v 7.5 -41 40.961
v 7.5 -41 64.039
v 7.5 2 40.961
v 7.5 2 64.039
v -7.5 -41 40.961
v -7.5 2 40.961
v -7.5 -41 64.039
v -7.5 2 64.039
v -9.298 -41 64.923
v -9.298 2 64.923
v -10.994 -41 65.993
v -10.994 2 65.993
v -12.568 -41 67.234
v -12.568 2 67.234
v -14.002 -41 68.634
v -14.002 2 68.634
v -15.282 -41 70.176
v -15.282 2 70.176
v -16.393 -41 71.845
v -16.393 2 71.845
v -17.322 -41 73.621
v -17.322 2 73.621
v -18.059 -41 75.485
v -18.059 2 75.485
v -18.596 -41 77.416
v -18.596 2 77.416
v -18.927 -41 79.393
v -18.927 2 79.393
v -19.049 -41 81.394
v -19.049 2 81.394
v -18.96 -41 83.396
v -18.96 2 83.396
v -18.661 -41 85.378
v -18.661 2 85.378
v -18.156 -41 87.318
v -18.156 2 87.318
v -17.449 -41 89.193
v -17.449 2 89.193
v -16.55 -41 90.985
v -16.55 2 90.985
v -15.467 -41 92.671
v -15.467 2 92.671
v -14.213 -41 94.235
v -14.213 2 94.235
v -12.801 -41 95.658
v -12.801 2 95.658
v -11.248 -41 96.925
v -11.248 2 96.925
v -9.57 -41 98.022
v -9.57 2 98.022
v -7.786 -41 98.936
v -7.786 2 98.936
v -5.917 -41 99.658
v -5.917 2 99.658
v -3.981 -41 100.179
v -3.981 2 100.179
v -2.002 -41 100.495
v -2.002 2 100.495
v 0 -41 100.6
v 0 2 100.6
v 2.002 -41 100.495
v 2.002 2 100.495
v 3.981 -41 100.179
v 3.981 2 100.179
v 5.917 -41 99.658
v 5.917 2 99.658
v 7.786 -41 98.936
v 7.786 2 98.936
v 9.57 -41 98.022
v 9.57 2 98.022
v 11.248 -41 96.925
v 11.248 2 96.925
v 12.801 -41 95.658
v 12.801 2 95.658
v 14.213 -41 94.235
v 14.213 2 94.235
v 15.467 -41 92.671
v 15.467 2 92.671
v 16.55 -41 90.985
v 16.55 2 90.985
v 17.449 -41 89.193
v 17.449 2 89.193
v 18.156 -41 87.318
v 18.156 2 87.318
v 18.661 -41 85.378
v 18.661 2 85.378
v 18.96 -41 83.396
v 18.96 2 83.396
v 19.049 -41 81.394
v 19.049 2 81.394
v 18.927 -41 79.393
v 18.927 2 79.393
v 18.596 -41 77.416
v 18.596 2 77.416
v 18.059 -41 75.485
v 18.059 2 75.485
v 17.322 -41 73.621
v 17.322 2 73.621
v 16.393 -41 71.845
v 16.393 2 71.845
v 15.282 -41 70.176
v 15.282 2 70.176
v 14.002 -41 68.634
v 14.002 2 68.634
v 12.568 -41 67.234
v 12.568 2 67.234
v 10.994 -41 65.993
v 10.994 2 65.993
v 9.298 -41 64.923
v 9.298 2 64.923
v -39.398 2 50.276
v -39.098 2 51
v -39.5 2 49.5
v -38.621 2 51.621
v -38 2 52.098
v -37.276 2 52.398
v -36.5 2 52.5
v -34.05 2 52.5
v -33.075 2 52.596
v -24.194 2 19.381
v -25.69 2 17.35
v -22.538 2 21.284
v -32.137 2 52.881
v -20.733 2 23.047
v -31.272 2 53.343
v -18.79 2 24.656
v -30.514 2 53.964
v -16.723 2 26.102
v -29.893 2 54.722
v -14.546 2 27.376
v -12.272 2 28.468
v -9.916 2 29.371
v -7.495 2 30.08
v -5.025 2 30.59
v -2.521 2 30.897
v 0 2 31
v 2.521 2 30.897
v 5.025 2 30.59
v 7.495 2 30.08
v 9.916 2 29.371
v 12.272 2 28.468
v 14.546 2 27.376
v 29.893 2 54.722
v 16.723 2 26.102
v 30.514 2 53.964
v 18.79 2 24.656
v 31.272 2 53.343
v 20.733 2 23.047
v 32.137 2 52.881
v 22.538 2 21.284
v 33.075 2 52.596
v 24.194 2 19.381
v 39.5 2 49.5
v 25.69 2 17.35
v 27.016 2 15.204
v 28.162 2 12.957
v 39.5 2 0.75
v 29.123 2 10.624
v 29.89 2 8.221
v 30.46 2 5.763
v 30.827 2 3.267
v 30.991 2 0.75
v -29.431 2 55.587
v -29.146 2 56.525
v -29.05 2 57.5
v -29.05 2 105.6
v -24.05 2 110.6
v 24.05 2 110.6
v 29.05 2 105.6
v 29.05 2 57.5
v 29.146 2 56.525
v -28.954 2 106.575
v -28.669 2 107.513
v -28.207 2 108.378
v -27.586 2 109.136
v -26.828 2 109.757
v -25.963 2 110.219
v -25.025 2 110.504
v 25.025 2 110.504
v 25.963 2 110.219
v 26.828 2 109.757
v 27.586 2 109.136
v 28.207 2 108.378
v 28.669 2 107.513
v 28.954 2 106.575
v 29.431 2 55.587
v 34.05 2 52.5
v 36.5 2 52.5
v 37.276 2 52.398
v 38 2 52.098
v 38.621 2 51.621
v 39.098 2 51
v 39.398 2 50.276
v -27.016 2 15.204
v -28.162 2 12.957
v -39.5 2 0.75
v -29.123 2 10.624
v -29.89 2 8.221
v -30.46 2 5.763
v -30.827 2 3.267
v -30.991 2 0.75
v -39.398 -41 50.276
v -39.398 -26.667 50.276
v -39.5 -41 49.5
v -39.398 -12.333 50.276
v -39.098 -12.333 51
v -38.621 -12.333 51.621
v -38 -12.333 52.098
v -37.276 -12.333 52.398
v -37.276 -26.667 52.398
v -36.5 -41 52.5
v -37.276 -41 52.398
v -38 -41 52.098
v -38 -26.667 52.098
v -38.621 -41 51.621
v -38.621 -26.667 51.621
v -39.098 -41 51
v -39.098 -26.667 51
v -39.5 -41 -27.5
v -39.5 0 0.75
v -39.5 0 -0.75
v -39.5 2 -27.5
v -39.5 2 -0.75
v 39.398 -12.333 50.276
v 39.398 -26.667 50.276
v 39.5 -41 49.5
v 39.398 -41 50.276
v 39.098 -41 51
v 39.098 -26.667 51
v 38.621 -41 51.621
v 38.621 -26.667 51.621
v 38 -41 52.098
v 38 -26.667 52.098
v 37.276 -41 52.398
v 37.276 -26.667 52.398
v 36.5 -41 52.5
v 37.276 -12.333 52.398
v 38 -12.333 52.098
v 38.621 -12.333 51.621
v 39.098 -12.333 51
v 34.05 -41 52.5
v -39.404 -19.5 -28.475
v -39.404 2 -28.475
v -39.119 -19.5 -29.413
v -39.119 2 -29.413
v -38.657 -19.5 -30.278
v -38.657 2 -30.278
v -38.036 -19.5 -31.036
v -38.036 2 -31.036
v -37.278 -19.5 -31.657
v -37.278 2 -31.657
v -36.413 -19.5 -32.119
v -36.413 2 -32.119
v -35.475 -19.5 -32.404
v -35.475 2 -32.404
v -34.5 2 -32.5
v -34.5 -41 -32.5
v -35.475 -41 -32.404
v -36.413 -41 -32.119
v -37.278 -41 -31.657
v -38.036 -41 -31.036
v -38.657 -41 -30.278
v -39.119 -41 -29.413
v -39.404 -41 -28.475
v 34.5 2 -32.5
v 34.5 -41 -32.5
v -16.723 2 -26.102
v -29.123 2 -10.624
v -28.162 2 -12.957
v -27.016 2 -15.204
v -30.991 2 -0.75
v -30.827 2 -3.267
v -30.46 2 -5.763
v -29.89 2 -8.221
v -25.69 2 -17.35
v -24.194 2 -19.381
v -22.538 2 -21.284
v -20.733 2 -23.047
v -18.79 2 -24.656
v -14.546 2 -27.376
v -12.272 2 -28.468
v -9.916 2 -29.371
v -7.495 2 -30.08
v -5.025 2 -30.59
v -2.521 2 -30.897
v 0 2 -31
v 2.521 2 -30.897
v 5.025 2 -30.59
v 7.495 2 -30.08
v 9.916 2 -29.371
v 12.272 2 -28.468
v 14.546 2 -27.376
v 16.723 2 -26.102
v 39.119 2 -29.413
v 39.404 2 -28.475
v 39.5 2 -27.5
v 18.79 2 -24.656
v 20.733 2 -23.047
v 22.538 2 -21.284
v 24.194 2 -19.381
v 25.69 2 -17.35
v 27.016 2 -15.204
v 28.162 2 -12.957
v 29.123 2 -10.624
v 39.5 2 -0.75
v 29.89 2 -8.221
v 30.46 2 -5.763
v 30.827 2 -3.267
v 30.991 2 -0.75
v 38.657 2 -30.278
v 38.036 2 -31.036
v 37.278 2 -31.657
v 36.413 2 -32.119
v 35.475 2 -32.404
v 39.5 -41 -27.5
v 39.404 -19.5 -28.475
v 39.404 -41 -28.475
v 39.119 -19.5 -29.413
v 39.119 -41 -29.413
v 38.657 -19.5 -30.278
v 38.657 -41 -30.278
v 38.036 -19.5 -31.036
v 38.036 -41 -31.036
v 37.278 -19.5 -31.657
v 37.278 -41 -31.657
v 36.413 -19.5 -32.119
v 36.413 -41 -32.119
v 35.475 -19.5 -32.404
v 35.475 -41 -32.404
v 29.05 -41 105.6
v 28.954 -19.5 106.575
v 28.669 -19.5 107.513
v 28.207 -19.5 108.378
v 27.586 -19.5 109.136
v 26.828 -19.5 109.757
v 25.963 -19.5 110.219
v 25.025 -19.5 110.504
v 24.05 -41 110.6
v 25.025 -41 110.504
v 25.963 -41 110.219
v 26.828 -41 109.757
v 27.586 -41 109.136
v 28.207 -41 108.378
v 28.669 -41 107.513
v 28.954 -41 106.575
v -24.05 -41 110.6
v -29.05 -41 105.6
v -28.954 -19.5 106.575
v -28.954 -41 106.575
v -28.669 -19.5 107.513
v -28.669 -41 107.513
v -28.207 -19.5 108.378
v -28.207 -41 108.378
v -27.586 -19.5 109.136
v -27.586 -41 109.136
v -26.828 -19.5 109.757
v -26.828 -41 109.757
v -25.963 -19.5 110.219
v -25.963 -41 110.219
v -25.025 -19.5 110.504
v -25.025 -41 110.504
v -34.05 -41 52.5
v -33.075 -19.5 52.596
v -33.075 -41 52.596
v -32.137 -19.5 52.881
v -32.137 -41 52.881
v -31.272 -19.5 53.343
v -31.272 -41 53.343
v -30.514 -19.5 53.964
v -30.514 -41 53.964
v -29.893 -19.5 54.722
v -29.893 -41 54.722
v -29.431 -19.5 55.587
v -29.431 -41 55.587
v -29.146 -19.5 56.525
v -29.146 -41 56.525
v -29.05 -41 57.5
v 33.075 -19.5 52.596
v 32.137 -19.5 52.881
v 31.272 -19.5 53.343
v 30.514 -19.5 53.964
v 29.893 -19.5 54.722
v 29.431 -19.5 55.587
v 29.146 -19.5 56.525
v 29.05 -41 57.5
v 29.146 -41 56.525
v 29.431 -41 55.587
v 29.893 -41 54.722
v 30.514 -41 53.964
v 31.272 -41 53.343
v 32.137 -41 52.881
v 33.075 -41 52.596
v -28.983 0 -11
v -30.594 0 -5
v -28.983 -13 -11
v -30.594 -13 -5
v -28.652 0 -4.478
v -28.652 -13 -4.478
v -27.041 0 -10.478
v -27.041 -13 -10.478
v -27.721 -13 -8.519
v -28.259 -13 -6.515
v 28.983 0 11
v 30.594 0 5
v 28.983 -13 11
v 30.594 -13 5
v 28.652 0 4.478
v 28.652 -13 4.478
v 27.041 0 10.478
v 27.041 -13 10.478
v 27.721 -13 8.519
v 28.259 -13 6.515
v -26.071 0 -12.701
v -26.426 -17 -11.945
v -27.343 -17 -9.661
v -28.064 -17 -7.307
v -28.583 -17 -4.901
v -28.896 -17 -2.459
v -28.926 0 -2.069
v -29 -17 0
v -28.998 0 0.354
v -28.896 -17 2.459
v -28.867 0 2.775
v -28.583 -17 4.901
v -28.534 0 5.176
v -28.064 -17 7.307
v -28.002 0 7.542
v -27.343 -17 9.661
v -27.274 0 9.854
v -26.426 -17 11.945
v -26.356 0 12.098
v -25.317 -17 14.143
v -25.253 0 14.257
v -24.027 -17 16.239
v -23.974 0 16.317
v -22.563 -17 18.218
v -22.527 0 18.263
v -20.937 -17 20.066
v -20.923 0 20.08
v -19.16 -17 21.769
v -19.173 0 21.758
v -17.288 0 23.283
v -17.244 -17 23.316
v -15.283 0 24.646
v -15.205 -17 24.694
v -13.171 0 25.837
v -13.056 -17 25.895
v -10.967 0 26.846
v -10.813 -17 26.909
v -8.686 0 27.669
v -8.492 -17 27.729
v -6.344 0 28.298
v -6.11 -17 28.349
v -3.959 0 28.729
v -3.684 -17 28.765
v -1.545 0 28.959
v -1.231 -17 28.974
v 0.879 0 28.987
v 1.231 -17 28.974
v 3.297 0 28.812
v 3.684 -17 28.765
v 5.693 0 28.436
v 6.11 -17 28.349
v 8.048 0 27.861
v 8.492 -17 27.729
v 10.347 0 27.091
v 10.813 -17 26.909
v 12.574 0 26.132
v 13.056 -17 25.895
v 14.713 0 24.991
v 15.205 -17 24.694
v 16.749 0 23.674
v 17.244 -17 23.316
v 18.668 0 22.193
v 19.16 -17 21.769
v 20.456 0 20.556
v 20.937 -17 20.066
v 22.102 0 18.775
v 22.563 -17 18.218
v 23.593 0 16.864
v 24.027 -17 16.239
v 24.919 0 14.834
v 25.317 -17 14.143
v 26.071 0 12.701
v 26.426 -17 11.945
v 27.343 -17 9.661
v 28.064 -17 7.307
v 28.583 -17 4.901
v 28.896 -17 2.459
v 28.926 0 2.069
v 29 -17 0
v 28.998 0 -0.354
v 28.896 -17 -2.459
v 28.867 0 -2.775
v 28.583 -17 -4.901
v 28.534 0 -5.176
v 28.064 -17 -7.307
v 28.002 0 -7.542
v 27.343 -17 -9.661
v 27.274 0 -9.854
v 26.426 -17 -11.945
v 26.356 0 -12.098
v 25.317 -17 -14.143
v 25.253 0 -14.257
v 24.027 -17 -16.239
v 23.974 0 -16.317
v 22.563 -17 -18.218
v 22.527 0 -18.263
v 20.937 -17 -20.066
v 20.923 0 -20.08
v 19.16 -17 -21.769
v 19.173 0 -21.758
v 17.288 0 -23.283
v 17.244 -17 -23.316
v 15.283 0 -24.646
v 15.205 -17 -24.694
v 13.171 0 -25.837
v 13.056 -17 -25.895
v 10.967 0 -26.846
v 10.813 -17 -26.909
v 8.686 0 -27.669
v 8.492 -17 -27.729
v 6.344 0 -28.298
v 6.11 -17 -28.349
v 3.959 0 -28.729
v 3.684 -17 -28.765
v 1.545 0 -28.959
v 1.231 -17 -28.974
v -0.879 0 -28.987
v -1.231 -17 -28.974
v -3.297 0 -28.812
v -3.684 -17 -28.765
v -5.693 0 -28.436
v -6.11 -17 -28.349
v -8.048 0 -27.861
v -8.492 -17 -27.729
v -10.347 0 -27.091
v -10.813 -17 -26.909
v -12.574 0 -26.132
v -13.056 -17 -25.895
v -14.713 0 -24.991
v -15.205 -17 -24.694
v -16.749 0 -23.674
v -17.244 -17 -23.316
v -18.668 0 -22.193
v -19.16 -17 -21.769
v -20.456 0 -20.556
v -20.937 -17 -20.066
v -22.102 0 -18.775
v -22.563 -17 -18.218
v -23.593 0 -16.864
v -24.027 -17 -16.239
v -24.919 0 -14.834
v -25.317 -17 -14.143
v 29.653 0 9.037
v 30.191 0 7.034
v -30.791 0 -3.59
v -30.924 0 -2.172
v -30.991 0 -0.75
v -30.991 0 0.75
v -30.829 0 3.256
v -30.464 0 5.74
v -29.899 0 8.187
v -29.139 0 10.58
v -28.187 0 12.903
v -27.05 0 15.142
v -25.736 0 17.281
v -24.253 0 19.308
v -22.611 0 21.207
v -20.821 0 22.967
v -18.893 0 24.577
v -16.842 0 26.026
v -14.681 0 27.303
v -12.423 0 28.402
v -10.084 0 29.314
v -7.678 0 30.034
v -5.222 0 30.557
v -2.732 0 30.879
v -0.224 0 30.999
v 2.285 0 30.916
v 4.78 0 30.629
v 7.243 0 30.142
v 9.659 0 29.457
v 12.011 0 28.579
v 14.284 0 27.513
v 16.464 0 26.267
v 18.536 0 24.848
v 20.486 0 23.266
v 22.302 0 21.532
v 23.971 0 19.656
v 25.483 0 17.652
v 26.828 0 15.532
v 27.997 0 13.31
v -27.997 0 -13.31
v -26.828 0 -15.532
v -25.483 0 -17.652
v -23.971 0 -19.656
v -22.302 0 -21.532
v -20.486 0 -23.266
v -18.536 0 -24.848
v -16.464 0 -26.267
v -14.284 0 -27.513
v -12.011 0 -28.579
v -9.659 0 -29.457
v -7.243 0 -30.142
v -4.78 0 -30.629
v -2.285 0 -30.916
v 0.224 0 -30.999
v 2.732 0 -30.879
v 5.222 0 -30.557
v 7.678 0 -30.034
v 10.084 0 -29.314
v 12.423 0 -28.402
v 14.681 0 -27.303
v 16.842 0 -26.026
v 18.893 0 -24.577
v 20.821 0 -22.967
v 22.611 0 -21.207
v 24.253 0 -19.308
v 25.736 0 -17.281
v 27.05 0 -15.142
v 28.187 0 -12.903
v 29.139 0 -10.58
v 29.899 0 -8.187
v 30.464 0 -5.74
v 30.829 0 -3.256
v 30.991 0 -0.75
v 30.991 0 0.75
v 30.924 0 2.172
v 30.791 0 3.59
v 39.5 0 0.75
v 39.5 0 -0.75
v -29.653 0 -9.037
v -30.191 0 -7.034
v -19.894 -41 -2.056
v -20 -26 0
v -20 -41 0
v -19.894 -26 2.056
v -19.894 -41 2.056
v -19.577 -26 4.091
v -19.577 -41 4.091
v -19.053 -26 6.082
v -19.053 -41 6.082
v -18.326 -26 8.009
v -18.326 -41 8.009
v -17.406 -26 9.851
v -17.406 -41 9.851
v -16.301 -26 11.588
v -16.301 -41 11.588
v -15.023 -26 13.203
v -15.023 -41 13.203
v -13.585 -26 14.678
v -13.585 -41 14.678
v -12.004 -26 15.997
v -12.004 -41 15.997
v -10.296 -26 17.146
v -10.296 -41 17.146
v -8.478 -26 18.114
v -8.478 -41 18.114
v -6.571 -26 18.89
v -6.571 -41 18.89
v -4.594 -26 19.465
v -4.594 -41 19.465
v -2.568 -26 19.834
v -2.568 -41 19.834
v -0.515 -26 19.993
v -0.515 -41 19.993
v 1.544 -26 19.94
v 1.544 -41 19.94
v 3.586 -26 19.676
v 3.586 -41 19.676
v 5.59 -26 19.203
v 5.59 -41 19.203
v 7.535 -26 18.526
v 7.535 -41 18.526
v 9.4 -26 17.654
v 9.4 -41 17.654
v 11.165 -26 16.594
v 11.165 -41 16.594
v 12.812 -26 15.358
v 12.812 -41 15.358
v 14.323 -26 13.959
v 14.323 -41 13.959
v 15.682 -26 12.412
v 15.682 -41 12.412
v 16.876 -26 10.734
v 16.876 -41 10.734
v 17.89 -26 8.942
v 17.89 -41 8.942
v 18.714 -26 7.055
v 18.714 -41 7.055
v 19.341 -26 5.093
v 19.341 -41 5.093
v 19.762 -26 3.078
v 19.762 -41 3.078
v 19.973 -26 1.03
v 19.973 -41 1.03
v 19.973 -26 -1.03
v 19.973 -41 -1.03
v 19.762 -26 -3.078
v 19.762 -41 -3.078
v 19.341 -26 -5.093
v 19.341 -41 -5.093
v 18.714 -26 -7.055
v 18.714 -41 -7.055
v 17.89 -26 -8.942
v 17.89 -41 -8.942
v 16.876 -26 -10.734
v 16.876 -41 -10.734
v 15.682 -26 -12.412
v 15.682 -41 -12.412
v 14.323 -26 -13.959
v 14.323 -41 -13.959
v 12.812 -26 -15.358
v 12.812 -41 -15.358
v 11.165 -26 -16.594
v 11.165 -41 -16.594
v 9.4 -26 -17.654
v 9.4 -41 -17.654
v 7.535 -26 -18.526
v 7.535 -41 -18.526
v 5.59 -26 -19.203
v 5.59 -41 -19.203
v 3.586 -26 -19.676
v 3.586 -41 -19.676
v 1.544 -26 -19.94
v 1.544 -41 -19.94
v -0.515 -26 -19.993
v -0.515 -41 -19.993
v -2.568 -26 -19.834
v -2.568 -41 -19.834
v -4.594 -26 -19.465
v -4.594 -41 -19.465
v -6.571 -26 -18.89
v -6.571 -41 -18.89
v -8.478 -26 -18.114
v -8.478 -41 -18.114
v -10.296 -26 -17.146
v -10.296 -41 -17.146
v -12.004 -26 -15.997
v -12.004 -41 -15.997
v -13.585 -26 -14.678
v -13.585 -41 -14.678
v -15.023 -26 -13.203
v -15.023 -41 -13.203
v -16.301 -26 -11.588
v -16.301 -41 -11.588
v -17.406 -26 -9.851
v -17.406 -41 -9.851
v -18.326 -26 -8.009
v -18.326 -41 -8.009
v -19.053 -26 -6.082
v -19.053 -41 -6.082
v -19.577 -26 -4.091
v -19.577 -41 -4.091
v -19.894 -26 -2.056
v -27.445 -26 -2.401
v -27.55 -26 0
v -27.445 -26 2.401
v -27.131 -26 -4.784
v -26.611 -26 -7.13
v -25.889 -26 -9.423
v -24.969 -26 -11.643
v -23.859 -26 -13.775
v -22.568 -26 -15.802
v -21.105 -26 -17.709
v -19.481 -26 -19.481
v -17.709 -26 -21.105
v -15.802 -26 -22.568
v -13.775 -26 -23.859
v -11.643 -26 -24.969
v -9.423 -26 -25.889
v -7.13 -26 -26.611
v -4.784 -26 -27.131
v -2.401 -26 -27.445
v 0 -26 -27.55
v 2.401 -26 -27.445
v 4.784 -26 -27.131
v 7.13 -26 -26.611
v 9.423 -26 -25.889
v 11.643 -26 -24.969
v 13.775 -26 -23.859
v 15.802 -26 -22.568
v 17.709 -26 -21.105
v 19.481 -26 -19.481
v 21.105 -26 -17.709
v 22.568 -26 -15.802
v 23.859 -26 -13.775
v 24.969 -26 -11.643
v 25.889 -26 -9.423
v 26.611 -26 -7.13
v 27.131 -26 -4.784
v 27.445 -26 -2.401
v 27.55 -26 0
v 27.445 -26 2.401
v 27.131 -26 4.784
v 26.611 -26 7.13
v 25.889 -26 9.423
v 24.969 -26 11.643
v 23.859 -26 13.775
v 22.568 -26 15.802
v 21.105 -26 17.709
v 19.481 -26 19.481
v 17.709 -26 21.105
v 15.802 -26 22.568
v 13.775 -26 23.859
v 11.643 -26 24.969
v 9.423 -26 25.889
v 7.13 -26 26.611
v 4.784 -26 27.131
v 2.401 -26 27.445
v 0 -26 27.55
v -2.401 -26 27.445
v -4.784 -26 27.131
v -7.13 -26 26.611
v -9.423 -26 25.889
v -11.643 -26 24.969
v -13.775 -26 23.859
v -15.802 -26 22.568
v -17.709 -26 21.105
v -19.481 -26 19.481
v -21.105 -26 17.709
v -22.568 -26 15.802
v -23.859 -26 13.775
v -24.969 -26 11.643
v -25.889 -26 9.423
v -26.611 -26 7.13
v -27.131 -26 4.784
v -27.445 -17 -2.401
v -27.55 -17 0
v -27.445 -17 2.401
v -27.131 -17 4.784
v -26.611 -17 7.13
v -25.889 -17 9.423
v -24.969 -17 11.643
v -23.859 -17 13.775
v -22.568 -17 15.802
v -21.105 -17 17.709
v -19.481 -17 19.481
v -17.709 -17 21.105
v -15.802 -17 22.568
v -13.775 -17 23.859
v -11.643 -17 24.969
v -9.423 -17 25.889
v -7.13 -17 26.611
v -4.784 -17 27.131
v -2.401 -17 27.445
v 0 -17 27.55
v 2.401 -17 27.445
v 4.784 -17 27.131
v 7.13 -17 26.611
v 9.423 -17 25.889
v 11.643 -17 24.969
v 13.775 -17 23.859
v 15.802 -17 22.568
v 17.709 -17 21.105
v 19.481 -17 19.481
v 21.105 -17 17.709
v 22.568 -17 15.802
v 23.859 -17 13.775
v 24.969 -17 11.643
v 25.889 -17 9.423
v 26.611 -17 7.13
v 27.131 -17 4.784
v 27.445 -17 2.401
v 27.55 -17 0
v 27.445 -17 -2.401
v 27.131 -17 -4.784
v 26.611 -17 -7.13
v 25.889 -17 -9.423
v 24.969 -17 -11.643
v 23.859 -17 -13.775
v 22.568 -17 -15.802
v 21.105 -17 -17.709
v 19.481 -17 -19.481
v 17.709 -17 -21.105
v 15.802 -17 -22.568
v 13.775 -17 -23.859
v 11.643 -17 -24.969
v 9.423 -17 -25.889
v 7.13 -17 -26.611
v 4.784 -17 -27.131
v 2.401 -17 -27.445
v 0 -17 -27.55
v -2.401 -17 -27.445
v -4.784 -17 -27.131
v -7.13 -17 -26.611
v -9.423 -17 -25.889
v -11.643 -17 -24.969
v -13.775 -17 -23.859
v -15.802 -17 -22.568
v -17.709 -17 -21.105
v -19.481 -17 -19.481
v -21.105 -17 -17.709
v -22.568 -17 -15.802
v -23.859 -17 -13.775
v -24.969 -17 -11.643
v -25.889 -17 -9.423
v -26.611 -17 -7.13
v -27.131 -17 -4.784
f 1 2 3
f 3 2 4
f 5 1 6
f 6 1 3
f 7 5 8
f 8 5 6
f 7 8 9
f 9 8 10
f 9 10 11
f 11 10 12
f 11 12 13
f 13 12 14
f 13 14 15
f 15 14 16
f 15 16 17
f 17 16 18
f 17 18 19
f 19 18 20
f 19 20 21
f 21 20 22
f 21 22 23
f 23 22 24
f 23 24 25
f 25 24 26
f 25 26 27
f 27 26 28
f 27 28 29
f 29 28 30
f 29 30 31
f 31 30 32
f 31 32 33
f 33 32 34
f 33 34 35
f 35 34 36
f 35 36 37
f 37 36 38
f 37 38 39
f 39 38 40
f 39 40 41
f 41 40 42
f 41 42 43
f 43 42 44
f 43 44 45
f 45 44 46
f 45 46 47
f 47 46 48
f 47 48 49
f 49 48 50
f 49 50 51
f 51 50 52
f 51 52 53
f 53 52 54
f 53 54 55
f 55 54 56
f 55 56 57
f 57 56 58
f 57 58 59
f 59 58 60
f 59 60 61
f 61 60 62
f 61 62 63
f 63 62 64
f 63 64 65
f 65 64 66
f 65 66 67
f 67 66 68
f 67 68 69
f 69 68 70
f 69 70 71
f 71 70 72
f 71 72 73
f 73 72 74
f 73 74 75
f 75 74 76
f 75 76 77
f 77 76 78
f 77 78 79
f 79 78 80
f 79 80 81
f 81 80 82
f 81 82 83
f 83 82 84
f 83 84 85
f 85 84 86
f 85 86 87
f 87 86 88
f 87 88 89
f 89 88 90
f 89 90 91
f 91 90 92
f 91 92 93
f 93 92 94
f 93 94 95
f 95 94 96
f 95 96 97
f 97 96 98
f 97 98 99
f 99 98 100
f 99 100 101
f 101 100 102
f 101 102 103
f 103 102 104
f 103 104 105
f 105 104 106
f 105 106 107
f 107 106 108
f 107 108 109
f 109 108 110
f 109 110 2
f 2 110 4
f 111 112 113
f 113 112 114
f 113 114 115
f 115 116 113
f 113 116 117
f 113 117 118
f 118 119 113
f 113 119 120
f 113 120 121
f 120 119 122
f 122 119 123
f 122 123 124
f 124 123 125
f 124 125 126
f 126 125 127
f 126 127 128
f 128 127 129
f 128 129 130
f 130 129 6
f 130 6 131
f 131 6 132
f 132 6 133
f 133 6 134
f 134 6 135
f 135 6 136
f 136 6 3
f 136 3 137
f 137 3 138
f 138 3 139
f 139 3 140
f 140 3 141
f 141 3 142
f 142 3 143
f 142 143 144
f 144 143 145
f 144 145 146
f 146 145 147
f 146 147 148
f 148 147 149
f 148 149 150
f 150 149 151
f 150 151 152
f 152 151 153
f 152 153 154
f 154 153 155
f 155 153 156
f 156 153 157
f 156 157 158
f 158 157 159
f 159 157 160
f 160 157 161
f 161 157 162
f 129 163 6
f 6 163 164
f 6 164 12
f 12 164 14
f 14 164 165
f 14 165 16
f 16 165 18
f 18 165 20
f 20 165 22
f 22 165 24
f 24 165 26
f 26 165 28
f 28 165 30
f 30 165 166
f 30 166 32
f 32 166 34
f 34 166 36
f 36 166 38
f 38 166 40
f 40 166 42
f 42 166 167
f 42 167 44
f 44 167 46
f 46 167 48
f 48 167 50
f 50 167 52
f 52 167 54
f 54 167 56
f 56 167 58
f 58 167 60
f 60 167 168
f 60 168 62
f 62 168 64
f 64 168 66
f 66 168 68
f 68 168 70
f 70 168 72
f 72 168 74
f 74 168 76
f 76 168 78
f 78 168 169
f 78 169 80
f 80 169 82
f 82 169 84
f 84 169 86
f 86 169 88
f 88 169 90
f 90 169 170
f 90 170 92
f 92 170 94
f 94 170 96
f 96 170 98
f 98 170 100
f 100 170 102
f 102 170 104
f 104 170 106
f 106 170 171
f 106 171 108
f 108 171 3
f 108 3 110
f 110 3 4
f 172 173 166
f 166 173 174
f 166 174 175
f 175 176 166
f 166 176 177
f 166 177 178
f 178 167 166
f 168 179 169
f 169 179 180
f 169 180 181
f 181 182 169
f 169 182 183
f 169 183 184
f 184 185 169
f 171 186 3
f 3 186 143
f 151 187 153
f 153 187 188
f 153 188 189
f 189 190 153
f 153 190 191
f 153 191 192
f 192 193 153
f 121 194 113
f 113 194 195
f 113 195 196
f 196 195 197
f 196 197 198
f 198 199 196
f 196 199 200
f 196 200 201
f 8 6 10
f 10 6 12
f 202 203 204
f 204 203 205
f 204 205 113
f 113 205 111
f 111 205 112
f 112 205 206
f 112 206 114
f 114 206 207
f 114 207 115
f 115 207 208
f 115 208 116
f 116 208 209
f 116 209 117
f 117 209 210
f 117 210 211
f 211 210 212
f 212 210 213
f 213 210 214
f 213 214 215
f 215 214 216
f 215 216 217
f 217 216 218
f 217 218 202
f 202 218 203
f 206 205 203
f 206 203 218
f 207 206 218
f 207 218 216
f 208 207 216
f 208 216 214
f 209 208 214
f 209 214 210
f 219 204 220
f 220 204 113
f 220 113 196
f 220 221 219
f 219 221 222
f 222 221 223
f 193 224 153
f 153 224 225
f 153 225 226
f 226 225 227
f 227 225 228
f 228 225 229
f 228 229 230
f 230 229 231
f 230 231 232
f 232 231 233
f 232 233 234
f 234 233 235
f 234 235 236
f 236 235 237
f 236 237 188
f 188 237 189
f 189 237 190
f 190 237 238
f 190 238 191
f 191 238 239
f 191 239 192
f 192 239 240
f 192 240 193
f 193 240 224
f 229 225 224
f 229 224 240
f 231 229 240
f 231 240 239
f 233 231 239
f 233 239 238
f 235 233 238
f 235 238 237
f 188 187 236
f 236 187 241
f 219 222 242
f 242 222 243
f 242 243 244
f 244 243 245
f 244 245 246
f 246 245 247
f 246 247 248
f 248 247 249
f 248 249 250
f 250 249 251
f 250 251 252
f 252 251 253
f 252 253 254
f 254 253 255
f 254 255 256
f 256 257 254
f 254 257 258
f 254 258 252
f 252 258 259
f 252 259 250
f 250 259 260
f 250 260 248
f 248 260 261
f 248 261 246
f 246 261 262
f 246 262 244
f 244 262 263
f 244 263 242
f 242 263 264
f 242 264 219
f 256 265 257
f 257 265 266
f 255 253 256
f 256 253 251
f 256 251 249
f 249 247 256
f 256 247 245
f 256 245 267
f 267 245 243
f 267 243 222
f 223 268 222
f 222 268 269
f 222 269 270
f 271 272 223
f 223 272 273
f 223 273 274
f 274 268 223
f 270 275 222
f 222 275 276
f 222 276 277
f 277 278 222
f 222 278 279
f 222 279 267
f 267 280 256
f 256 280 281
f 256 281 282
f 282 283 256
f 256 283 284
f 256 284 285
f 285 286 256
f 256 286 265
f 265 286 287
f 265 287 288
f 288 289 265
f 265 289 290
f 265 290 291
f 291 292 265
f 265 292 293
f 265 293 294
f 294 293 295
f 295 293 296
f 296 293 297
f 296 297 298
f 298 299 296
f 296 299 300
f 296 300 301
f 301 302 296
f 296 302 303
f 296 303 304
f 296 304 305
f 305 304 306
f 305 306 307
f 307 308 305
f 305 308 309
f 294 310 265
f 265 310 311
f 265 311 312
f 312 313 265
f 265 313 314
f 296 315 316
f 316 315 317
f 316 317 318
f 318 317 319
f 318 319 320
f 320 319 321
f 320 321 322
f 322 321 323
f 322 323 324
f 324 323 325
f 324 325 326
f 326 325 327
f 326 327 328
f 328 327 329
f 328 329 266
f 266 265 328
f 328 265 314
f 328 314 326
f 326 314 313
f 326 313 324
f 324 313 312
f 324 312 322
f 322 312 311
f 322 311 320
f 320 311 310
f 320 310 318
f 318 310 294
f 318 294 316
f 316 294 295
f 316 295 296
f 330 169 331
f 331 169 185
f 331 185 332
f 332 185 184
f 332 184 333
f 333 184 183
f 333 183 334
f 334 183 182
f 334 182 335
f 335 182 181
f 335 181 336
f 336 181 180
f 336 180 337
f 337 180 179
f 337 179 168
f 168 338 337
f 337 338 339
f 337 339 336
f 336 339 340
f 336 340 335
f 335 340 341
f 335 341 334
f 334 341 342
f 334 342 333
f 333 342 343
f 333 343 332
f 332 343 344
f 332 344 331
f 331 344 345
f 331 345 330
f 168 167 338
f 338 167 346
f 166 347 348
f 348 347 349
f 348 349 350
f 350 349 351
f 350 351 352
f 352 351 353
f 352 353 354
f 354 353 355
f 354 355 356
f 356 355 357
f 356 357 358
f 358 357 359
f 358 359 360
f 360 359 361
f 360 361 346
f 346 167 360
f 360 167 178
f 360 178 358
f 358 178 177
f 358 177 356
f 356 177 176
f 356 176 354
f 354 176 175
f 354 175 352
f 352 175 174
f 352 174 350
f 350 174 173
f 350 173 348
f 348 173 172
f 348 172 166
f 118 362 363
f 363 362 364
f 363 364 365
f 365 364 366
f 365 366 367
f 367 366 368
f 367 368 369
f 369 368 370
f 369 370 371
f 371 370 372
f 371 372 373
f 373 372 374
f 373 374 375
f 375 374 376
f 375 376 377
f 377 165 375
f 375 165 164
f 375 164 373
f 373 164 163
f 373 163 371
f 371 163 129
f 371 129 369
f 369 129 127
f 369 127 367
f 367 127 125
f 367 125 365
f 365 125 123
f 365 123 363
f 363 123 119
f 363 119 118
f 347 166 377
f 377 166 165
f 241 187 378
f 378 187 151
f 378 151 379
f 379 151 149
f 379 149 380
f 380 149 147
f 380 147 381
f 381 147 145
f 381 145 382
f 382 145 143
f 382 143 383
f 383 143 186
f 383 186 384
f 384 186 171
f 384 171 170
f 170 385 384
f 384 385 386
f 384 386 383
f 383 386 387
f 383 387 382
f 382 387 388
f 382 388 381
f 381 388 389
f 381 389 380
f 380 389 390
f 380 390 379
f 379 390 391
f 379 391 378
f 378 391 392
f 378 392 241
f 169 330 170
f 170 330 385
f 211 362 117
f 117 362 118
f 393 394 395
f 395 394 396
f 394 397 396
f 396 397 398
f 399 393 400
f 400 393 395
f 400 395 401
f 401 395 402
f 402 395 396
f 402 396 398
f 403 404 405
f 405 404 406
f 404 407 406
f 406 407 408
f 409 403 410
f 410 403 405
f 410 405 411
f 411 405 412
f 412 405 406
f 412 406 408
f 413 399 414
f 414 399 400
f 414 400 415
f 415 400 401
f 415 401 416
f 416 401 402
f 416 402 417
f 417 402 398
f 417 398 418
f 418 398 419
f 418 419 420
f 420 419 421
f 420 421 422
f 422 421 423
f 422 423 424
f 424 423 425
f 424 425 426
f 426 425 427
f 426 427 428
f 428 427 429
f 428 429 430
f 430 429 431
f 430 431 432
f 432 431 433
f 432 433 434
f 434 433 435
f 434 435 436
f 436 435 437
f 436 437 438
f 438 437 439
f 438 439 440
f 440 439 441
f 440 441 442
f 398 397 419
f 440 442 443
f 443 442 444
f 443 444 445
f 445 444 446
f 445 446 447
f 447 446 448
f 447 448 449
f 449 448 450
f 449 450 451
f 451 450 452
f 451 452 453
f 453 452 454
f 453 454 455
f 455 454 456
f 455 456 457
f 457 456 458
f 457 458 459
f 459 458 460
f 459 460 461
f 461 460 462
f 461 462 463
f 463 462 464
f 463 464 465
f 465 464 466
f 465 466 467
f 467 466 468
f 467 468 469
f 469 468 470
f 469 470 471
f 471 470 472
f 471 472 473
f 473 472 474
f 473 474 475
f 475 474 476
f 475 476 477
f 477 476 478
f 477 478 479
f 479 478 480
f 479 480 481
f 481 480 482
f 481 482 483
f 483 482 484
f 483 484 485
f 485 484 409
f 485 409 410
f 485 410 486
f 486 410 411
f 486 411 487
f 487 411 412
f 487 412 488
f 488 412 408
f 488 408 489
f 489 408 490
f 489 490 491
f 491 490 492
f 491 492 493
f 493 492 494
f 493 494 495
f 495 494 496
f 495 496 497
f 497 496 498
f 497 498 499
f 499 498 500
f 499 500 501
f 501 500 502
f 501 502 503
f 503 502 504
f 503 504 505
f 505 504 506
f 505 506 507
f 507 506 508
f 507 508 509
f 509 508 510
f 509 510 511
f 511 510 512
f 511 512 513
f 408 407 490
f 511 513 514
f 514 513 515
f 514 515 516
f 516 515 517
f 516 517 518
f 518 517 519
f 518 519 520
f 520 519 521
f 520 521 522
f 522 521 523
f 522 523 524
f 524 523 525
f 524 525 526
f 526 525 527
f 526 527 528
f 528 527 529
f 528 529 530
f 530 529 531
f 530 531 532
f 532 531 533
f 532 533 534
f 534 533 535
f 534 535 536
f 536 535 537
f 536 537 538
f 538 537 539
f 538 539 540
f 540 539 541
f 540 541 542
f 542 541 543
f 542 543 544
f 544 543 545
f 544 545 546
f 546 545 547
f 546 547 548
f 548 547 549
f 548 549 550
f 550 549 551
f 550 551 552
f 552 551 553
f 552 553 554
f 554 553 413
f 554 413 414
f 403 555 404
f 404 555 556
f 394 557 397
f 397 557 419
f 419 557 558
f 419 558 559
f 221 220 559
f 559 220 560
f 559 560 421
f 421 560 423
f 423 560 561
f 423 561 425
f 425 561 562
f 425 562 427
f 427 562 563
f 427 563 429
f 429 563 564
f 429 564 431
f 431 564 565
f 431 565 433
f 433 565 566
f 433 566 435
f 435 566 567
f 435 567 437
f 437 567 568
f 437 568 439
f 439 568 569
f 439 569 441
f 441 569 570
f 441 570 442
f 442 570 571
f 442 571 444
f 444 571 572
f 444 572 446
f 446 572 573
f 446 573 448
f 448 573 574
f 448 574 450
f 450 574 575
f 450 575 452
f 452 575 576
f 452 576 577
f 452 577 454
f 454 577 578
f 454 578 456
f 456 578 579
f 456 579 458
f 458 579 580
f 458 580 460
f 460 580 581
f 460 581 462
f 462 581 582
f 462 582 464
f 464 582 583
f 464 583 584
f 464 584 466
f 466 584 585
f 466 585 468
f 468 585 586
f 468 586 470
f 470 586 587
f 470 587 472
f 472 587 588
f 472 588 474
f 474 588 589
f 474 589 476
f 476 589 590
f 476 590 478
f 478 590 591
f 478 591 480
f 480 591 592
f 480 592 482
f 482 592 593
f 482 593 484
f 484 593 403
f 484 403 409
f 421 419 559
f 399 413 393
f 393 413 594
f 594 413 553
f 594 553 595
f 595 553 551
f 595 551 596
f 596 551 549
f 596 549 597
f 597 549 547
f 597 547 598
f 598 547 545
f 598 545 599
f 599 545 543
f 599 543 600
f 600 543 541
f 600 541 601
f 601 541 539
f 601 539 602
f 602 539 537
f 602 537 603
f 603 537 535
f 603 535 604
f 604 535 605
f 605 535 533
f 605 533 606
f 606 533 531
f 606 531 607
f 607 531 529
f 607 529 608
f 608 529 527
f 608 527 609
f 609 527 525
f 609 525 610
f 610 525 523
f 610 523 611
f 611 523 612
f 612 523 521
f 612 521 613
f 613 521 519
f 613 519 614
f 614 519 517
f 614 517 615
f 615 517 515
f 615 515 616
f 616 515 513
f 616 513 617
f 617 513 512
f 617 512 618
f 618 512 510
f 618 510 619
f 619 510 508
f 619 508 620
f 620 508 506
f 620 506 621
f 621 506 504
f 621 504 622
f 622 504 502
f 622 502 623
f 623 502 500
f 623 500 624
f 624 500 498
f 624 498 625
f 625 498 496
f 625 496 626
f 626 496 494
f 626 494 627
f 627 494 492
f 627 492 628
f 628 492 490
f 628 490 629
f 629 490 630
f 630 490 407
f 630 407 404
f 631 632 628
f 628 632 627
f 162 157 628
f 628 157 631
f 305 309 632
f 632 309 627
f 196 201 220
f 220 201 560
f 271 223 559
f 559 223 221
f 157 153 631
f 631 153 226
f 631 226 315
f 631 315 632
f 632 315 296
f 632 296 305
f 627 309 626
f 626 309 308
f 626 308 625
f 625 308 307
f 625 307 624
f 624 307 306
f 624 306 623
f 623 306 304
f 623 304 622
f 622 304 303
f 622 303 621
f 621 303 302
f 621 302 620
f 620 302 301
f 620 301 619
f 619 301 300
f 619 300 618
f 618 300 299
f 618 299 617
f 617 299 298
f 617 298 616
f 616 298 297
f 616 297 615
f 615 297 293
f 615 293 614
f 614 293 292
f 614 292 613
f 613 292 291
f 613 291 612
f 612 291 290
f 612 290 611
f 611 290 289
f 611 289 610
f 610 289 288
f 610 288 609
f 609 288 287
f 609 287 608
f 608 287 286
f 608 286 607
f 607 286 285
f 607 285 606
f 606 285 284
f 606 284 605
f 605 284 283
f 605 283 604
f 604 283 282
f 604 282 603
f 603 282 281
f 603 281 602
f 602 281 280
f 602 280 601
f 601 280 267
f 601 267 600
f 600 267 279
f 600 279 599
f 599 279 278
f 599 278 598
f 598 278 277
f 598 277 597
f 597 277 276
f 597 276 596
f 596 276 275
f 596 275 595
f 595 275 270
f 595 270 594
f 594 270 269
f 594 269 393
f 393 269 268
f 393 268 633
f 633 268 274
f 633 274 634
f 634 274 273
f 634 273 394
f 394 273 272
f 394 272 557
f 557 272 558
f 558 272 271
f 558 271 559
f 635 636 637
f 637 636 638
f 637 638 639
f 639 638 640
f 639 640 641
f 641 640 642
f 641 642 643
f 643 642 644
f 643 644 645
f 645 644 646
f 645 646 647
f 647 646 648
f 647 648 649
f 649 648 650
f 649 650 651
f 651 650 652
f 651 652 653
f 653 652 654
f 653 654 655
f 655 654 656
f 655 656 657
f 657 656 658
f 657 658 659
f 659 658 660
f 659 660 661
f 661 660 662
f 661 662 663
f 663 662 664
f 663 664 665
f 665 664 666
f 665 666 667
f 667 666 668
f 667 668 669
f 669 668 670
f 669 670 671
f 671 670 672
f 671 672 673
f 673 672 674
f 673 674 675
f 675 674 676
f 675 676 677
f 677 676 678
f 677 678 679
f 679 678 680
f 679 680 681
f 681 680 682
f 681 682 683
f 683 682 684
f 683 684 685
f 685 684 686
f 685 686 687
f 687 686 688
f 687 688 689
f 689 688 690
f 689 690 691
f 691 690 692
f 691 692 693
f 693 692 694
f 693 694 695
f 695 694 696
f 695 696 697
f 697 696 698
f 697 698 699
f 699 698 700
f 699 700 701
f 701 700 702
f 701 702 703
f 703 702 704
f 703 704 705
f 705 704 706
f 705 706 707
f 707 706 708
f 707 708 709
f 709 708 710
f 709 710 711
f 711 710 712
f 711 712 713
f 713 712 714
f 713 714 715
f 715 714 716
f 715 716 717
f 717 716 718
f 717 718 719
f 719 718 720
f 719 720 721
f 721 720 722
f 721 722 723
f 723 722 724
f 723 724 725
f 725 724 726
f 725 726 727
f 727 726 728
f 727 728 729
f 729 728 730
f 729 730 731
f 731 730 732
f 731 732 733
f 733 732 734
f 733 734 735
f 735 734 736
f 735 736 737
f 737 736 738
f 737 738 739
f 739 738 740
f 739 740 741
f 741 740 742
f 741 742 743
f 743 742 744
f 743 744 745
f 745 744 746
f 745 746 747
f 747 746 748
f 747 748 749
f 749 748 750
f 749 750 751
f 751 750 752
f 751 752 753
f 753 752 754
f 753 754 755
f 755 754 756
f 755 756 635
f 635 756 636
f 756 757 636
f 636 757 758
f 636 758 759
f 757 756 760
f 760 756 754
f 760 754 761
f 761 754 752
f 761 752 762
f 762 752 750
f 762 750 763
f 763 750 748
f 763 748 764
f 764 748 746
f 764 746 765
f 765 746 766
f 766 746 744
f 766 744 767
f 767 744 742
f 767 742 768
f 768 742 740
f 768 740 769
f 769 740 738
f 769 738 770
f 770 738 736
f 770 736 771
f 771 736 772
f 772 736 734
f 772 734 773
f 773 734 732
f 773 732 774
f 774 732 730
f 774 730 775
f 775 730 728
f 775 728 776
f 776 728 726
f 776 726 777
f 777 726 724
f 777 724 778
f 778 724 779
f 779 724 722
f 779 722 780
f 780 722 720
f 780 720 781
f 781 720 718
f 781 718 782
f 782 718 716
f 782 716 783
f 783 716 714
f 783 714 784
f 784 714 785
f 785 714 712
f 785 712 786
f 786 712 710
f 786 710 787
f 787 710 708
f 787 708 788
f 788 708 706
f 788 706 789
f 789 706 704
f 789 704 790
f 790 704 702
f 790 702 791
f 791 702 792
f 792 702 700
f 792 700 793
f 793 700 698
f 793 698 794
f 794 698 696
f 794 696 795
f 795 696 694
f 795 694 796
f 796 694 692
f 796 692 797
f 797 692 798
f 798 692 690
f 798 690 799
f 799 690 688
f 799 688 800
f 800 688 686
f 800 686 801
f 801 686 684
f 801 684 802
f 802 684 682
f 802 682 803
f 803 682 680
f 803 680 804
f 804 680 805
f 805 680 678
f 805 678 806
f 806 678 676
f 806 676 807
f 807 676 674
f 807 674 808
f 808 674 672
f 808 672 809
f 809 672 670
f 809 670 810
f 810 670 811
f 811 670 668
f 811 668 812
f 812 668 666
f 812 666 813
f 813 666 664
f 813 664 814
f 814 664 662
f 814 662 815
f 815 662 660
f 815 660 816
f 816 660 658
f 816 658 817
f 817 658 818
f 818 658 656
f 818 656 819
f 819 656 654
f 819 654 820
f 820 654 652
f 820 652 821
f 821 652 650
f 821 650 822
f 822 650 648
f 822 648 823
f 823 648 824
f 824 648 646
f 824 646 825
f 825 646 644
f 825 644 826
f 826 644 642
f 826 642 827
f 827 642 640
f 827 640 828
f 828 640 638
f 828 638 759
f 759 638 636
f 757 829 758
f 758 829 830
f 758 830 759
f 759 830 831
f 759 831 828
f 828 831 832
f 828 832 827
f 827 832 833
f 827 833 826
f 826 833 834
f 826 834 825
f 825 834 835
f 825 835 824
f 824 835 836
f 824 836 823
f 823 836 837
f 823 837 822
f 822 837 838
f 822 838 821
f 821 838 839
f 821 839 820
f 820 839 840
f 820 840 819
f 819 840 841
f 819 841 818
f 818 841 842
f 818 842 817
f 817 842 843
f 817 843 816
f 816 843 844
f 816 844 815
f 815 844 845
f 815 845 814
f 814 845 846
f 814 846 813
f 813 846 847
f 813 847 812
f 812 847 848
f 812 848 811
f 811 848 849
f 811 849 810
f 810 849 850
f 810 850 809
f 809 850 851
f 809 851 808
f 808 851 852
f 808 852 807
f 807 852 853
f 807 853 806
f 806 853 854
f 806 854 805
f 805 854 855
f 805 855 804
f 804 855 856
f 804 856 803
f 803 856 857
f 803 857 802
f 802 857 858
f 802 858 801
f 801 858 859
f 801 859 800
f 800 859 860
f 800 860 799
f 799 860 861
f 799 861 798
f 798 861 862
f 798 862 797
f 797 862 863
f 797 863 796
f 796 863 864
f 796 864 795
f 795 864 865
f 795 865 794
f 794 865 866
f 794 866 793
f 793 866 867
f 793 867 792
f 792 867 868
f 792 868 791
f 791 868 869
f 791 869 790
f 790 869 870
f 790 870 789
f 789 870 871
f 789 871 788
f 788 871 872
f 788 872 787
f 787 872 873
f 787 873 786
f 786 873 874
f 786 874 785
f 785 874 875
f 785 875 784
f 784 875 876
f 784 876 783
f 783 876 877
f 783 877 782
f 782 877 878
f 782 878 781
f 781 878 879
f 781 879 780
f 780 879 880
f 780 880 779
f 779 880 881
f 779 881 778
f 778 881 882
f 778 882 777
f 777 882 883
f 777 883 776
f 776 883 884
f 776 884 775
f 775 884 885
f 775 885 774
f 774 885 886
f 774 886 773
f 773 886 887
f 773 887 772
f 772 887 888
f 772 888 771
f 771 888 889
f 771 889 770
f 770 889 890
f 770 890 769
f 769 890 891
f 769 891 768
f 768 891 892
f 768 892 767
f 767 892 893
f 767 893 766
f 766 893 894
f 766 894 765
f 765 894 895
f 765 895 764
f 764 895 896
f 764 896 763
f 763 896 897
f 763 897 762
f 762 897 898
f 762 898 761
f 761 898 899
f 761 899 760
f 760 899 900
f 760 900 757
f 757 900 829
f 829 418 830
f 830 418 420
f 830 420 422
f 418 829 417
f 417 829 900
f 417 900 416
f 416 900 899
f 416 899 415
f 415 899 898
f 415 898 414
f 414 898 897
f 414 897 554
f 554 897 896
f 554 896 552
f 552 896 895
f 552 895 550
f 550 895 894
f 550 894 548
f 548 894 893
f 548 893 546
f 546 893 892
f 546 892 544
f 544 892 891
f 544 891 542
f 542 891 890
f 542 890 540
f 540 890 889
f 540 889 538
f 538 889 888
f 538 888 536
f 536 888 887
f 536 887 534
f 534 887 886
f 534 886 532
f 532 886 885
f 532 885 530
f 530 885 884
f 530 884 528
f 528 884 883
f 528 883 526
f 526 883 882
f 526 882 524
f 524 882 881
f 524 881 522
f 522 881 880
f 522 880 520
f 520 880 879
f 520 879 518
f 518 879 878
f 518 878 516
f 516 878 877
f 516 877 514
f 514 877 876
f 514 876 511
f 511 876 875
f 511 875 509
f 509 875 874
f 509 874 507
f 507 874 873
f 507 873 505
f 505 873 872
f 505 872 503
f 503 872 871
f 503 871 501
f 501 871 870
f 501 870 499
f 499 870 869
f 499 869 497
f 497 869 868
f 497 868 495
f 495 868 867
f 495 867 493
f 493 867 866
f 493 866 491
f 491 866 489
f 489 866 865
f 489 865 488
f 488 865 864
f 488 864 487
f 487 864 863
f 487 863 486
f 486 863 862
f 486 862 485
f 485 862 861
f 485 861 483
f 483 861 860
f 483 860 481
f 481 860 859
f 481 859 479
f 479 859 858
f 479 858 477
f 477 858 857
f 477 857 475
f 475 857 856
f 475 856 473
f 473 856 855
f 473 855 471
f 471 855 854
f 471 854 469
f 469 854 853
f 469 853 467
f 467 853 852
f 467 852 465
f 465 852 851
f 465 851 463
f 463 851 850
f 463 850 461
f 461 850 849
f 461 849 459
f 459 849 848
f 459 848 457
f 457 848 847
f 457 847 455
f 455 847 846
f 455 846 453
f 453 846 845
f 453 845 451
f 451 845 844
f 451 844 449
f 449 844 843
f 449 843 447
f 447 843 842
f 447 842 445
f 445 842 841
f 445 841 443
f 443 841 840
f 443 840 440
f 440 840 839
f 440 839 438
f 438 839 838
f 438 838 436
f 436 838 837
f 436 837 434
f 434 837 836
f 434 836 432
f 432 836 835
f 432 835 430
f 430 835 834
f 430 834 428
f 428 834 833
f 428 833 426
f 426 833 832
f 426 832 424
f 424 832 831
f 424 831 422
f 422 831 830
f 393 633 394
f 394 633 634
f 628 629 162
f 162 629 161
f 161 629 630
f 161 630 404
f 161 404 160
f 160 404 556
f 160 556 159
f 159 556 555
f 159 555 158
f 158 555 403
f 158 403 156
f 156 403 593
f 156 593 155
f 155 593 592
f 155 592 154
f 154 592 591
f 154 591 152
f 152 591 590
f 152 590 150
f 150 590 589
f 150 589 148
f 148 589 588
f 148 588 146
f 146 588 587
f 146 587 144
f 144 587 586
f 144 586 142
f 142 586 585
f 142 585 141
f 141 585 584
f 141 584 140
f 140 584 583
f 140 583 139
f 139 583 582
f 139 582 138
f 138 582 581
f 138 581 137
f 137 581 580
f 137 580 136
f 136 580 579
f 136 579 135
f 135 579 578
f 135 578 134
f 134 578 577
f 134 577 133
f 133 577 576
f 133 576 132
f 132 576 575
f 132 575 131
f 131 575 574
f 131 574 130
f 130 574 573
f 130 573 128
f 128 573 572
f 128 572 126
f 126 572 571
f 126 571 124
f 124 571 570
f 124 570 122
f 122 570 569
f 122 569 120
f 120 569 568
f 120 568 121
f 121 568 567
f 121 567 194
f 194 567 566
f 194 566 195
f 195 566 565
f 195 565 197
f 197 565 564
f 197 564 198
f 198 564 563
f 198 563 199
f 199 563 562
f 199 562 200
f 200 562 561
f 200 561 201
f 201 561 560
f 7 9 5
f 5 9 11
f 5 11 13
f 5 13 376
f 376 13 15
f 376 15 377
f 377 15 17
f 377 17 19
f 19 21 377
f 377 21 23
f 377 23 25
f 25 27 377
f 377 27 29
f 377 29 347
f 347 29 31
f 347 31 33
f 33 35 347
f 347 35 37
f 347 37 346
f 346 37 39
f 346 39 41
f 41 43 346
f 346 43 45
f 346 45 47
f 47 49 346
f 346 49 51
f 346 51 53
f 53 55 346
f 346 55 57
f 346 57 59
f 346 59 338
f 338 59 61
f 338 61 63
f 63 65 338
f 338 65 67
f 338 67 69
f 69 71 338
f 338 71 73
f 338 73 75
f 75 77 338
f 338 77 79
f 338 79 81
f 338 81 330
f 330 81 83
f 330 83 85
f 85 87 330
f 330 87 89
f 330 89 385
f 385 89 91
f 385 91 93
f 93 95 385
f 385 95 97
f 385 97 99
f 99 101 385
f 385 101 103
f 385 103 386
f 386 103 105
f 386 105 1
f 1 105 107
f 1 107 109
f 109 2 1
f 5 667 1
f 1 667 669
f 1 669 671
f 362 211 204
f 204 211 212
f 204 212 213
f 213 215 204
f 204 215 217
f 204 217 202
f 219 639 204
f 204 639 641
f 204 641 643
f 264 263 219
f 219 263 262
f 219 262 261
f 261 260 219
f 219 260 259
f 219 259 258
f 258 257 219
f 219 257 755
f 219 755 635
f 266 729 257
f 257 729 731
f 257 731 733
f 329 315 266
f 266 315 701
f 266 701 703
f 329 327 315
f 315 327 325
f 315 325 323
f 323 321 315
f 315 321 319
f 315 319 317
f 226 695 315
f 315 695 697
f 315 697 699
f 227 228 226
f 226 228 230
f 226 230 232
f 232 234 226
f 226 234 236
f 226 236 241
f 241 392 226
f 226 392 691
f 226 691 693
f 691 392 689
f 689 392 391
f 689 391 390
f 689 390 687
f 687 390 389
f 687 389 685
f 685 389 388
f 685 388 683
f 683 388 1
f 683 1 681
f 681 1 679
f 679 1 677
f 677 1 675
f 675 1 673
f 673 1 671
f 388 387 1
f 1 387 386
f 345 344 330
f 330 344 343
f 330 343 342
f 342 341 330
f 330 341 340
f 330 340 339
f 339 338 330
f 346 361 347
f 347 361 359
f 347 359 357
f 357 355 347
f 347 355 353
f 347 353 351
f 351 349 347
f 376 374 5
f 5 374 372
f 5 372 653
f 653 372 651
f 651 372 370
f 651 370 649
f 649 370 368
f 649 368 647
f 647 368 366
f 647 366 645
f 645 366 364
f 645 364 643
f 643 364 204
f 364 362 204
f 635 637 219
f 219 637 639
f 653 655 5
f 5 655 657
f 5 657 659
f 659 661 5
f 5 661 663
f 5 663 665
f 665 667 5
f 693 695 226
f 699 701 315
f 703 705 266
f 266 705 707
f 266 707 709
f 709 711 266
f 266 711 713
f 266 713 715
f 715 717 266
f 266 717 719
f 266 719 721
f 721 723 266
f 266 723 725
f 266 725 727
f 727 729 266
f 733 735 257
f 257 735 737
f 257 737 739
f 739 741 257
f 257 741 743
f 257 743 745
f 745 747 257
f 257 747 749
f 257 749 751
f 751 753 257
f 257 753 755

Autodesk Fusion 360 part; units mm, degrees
sketch "Sketch1" plane through (0, 0, 0) normal (0, 0, 1) x (1, 0, 0)
  line L0 (-29, 0) -> (29, 0)
  line L1 (29, 0) -> (29, -17)
  line L2 (29, -17) -> (-29, -17)
  line L3 (-29, -17) -> (-29, 0)
  line L4 (-31, 2) -> (31, 2)
  line L5 (31, 2) -> (31, 0)
  line L6 (31, 0) -> (-31, 0)
  line L7 (-31, 0) -> (-31, 2)
  line L8 (-27.55, -17) -> (27.55, -17)
  line L9 (27.55, -17) -> (27.55, -26)
  line L10 (27.55, -26) -> (-27.55, -26)
  line L11 (-27.55, -26) -> (-27.55, -17)
  line L12 (-20, -26) -> (20, -26)
  line L13 (20, -26) -> (20, -41)
  line L14 (20, -41) -> (-20, -41)
  line L15 (-20, -41) -> (-20, -26)
  line L16 (-42.5, 22) -> (42.5, 22)
  line L17 (42.5, 22) -> (42.5, 2)
  line L18 (42.5, 2) -> (-42.5, 2)
  line L19 (-42.5, 2) -> (-42.5, 22)
  line L20 (-42.5, -41) -> (-20, -41)
  line L21 (42.5, 2) -> (42.5, 22)
  line L22 (-39.5, 2) -> (-39.5, -41)
  line L23 (20, -41) -> (39.5, -41)
  line L24 (39.5, -41) -> (39.5, 2)
  line L25 (0, 2) -> (0, 22)
  line L26 (0, 2) -> (0, -41)
  dimension "d1" = 17
  dimension "d2" = 58
  dimension "d3" = 2
  dimension "d4" = 62
  dimension "d5" = 55.1
  dimension "d6" = 9
  dimension "d7" = 15
  dimension "d8" = 40
  dimension "d9" = 85
  dimension "d10" = 20
  dimension "d23" = 3
  dimension "d24" = 3
extrude "Extrude3" add sketch "Sketch1" along normal mid plane 65 contours L0 L4 L6 L7 L18 L26 | L0 L2 L3 L6 L8 L26 | L2 L3 L6 L7 L10 L11 L15 L18 L20 L22 | L0 L4 L5 L6 L18 L26 | L0 L1 L2 L6 L8 L26 | L1 L2 L5 L6 L9 L10 L13 L18 L23 L24 | L2 L8 L10 L11 L12 L26 | L2 L8 L9 L10 L12 L26 | L10 L12 L14 L15 L26 | L10 L12 L13 L14 L26
revolve "Revolve2" cut sketch "Sketch1" angle 360 about axis through (0, 2, 0) along (0, -1, 0) contours L0 L4 L6 L7 L18 L26 | L0 L2 L3 L6 L8 L26 | L2 L8 L10 L11 L12 L26 | L10 L12 L14 L15 L26
sketch "Sketch2" plane through (0, 2, 0) normal (0, 1, 0) x (-1, 0, 0)
  circle A0 centre (0, 0) radius 31
  line L0 (39.5, -32.5) -> (39.5, 32.5)
  line L1 (39.5, 32.5) -> (-39.5, 32.5)
  line L2 (-39.5, 32.5) -> (-39.5, -32.5)
  line L3 (-39.5, -32.5) -> (39.5, -32.5)
  line L4 (-39.5, 0.75) -> (-30.9909, 0.75)
  line L5 (-30.9909, 0.75) -> (-30.9909, -0.75)
  line L6 (-30.9909, -0.75) -> (-39.5, -0.75)
  line L7 (-39.5, -0.75) -> (-39.5, 0.75)
  line L8 (39.5, 0.75) -> (30.9909, 0.75)
  line L9 (30.9909, 0.75) -> (30.9909, -0.75)
  line L10 (30.9909, -0.75) -> (39.5, -0.75)
  line L11 (39.5, -0.75) -> (39.5, 0.75)
  line L12 (42.5, 0) -> (-42.5, 0)
  point P0 (28.9828, 11)
  dimension "d28" = 1.5
  dimension "d29" = 1.5
extrude "Extrude4" cut sketch "Sketch2" against normal blind 2 contours A0 L0 L10 L11 L12 | A0 L0 L8 L11 L12 | A0 L2 L4 L7 L12 | A0 L2 L6 L7 L12
sketch "Sketch3" plane through (0, 0, 0) normal (0, 1, 0) x (-1, 0, 0)
  circle A0 centre (0, 0) radius 29
  arc A1 (30.9909, 0.75) -> (-30.9909, 0.75) centre (0, 0) ccw
  line L0 (-30.9909, 0.75) -> (-39.5, 0.75)
  line L1 (-39.5, 0.75) -> (-39.5, -0.75)
  line L2 (-39.5, -0.75) -> (-30.9909, -0.75)
  arc A2 (-30.9909, -0.75) -> (30.9909, -0.75) centre (0, 0) ccw
  line L3 (30.9909, -0.75) -> (39.5, -0.75)
  line L4 (39.5, -0.75) -> (39.5, 0.75)
  line L5 (39.5, 0.75) -> (30.9909, 0.75)
  line L6 (28.9828, -11) -> (30.5941, -5)
  line L7 (30.5941, -5) -> (28.6521, -4.4785)
  line L8 (28.6521, -4.4785) -> (27.0407, -10.4785)
  line L9 (27.0407, -10.4785) -> (28.9828, -11)
  line L10 (-1.75, 0) -> (-22.5, 0)
  circle A3 centre (0, 0) radius 31
  line L11 (-30.5941, 5) -> (-28.6521, 4.4785)
  line L12 (-28.9828, 11) -> (-30.5941, 5)
  line L13 (-28.6521, 4.4785) -> (-27.0407, 10.4785)
  line L14 (-27.0407, 10.4785) -> (-28.9828, 11)
  line L15 (31, 0) -> (30.5941, -5)
  line L16 (0, 0) -> (31, 0)
  dimension "d35" = 6
  dimension "d37" = 360
  dimension "d41" = 5
extrude "Extrude5" cut sketch "Sketch3" against normal blind 13 contours A0 L11 L12 L14 | A0 L6 L7 L9
ref_plane "WorkPlane3" through (0, -9, 0) normal (0, 1, 0) x (0, 0, 1)
sketch "Sketch4" plane through (0, -9, 0) normal (0, 1, 0) x (1, 0, 0)
extrude "Extrude6" add 1 faces at (-13.1667, -26.6667, 32.5) along direction (0, 0, 1) blind 20
sketch "Sketch6" plane through (0, 0, 52.5) normal (0, 0, 1) x (-1, 0, 0)
  line L0 (39.5, 41) -> (-39.5, 41)
  line L1 (-39.5, 41) -> (-39.5, -2)
  line L2 (-39.5, -2) -> (39.5, -2)
  line L3 (39.5, -2) -> (39.5, 41)
  line L4 (-29.05, 41) -> (29.05, 41)
  line L5 (29.05, 41) -> (29.05, -2)
  line L6 (29.05, -2) -> (-29.05, -2)
  line L7 (-29.05, -2) -> (-29.05, 41)
  line L8 (29.05, 30) -> (39.5, 30)
  line L9 (-39.5, 30.6348) -> (-29.05, 30.6348)
  dimension "d44" = 58.1
extrude "Extrude7" add sketch "Sketch6" along normal blind 58.1 contours L0 L2 L4 L5 L6 L7
sketch "Sketch7" plane through (0, 2, 0) normal (0, 1, 0) x (-1, 0, 0)
  line L0 (-39.5, 0.75) -> (-30.9909, 0.75)
  arc A0 (30.9909, 0.75) -> (-30.9909, 0.75) centre (0, 0) ccw
  line L1 (30.9909, 0.75) -> (39.5, 0.75)
  line L2 (39.5, 0.75) -> (39.5, 52.5)
  line L3 (39.5, 52.5) -> (29.05, 52.5)
  line L4 (29.05, 52.5) -> (29.05, 110.6)
  line L5 (29.05, 110.6) -> (-29.05, 110.6)
  line L6 (-29.05, 110.6) -> (-29.05, 52.5)
  line L7 (-29.05, 52.5) -> (-39.5, 52.5)
  line L8 (-39.5, 52.5) -> (-39.5, 0.75)
  line L9 (-29.05, 52.5) -> (29.05, 52.5)
  circle A1 centre (0, 81.55) radius 19.05
  line L10 (-7.5, 64.0385) -> (7.5, 64.0385)
  line L11 (7.5, 64.0385) -> (7.5, 52.5)
  line L12 (7.5, 52.5) -> (-7.5, 52.5)
  line L13 (-7.5, 52.5) -> (-7.5, 64.0385)
  line L14 (0, 110.6) -> (0, 100.6)
  line L15 (0, 62.5) -> (0, 52.5)
  line L16 (-7.5, 52.5) -> (7.5, 52.5)
  line L17 (7.5, 52.5) -> (7.5, 40.9615)
  line L18 (7.5, 40.9615) -> (-7.5, 40.9615)
  line L19 (-7.5, 40.9615) -> (-7.5, 52.5)
  point P0 (0, 52.5)
  point P1 (-6.1183, 63.5093)
  dimension "d47" = 38.1
  dimension "d58" = 15
extrude "Extrude8" cut sketch "Sketch7" against normal up to surface (43 mm away) contours A1 L10 | A1 L10
fillet "Fillet1" radius 5 1 edges at (29.05, -19.5, 52.5)
fillet "Fillet2" radius 5 1 edges at (-29.05, -19.5, 52.5)
fillet "Fillet3" radius 5 4 edges at (-29.05, -19.5, 110.6) (29.05, -19.5, 110.6) (39.5, -19.5, -32.5) (-39.5, -19.5, -32.5)
fillet "Fillet4" radius 3 2 edges at (39.5, -19.5, 52.5) (-39.5, -19.5, 52.5)
extrude "Extrude9" cut sketch "Sketch7" against normal up to surface (43 mm away) contours L9 A1 L12 L13 L15 L16 | L9 L12 L16 L17 L18 L19 | L9 A1 L11 L12 L15 L16
equation "d44 = 1.5 in + 2 cm"
equation "d45 = 1.5 in + 2 cm"
